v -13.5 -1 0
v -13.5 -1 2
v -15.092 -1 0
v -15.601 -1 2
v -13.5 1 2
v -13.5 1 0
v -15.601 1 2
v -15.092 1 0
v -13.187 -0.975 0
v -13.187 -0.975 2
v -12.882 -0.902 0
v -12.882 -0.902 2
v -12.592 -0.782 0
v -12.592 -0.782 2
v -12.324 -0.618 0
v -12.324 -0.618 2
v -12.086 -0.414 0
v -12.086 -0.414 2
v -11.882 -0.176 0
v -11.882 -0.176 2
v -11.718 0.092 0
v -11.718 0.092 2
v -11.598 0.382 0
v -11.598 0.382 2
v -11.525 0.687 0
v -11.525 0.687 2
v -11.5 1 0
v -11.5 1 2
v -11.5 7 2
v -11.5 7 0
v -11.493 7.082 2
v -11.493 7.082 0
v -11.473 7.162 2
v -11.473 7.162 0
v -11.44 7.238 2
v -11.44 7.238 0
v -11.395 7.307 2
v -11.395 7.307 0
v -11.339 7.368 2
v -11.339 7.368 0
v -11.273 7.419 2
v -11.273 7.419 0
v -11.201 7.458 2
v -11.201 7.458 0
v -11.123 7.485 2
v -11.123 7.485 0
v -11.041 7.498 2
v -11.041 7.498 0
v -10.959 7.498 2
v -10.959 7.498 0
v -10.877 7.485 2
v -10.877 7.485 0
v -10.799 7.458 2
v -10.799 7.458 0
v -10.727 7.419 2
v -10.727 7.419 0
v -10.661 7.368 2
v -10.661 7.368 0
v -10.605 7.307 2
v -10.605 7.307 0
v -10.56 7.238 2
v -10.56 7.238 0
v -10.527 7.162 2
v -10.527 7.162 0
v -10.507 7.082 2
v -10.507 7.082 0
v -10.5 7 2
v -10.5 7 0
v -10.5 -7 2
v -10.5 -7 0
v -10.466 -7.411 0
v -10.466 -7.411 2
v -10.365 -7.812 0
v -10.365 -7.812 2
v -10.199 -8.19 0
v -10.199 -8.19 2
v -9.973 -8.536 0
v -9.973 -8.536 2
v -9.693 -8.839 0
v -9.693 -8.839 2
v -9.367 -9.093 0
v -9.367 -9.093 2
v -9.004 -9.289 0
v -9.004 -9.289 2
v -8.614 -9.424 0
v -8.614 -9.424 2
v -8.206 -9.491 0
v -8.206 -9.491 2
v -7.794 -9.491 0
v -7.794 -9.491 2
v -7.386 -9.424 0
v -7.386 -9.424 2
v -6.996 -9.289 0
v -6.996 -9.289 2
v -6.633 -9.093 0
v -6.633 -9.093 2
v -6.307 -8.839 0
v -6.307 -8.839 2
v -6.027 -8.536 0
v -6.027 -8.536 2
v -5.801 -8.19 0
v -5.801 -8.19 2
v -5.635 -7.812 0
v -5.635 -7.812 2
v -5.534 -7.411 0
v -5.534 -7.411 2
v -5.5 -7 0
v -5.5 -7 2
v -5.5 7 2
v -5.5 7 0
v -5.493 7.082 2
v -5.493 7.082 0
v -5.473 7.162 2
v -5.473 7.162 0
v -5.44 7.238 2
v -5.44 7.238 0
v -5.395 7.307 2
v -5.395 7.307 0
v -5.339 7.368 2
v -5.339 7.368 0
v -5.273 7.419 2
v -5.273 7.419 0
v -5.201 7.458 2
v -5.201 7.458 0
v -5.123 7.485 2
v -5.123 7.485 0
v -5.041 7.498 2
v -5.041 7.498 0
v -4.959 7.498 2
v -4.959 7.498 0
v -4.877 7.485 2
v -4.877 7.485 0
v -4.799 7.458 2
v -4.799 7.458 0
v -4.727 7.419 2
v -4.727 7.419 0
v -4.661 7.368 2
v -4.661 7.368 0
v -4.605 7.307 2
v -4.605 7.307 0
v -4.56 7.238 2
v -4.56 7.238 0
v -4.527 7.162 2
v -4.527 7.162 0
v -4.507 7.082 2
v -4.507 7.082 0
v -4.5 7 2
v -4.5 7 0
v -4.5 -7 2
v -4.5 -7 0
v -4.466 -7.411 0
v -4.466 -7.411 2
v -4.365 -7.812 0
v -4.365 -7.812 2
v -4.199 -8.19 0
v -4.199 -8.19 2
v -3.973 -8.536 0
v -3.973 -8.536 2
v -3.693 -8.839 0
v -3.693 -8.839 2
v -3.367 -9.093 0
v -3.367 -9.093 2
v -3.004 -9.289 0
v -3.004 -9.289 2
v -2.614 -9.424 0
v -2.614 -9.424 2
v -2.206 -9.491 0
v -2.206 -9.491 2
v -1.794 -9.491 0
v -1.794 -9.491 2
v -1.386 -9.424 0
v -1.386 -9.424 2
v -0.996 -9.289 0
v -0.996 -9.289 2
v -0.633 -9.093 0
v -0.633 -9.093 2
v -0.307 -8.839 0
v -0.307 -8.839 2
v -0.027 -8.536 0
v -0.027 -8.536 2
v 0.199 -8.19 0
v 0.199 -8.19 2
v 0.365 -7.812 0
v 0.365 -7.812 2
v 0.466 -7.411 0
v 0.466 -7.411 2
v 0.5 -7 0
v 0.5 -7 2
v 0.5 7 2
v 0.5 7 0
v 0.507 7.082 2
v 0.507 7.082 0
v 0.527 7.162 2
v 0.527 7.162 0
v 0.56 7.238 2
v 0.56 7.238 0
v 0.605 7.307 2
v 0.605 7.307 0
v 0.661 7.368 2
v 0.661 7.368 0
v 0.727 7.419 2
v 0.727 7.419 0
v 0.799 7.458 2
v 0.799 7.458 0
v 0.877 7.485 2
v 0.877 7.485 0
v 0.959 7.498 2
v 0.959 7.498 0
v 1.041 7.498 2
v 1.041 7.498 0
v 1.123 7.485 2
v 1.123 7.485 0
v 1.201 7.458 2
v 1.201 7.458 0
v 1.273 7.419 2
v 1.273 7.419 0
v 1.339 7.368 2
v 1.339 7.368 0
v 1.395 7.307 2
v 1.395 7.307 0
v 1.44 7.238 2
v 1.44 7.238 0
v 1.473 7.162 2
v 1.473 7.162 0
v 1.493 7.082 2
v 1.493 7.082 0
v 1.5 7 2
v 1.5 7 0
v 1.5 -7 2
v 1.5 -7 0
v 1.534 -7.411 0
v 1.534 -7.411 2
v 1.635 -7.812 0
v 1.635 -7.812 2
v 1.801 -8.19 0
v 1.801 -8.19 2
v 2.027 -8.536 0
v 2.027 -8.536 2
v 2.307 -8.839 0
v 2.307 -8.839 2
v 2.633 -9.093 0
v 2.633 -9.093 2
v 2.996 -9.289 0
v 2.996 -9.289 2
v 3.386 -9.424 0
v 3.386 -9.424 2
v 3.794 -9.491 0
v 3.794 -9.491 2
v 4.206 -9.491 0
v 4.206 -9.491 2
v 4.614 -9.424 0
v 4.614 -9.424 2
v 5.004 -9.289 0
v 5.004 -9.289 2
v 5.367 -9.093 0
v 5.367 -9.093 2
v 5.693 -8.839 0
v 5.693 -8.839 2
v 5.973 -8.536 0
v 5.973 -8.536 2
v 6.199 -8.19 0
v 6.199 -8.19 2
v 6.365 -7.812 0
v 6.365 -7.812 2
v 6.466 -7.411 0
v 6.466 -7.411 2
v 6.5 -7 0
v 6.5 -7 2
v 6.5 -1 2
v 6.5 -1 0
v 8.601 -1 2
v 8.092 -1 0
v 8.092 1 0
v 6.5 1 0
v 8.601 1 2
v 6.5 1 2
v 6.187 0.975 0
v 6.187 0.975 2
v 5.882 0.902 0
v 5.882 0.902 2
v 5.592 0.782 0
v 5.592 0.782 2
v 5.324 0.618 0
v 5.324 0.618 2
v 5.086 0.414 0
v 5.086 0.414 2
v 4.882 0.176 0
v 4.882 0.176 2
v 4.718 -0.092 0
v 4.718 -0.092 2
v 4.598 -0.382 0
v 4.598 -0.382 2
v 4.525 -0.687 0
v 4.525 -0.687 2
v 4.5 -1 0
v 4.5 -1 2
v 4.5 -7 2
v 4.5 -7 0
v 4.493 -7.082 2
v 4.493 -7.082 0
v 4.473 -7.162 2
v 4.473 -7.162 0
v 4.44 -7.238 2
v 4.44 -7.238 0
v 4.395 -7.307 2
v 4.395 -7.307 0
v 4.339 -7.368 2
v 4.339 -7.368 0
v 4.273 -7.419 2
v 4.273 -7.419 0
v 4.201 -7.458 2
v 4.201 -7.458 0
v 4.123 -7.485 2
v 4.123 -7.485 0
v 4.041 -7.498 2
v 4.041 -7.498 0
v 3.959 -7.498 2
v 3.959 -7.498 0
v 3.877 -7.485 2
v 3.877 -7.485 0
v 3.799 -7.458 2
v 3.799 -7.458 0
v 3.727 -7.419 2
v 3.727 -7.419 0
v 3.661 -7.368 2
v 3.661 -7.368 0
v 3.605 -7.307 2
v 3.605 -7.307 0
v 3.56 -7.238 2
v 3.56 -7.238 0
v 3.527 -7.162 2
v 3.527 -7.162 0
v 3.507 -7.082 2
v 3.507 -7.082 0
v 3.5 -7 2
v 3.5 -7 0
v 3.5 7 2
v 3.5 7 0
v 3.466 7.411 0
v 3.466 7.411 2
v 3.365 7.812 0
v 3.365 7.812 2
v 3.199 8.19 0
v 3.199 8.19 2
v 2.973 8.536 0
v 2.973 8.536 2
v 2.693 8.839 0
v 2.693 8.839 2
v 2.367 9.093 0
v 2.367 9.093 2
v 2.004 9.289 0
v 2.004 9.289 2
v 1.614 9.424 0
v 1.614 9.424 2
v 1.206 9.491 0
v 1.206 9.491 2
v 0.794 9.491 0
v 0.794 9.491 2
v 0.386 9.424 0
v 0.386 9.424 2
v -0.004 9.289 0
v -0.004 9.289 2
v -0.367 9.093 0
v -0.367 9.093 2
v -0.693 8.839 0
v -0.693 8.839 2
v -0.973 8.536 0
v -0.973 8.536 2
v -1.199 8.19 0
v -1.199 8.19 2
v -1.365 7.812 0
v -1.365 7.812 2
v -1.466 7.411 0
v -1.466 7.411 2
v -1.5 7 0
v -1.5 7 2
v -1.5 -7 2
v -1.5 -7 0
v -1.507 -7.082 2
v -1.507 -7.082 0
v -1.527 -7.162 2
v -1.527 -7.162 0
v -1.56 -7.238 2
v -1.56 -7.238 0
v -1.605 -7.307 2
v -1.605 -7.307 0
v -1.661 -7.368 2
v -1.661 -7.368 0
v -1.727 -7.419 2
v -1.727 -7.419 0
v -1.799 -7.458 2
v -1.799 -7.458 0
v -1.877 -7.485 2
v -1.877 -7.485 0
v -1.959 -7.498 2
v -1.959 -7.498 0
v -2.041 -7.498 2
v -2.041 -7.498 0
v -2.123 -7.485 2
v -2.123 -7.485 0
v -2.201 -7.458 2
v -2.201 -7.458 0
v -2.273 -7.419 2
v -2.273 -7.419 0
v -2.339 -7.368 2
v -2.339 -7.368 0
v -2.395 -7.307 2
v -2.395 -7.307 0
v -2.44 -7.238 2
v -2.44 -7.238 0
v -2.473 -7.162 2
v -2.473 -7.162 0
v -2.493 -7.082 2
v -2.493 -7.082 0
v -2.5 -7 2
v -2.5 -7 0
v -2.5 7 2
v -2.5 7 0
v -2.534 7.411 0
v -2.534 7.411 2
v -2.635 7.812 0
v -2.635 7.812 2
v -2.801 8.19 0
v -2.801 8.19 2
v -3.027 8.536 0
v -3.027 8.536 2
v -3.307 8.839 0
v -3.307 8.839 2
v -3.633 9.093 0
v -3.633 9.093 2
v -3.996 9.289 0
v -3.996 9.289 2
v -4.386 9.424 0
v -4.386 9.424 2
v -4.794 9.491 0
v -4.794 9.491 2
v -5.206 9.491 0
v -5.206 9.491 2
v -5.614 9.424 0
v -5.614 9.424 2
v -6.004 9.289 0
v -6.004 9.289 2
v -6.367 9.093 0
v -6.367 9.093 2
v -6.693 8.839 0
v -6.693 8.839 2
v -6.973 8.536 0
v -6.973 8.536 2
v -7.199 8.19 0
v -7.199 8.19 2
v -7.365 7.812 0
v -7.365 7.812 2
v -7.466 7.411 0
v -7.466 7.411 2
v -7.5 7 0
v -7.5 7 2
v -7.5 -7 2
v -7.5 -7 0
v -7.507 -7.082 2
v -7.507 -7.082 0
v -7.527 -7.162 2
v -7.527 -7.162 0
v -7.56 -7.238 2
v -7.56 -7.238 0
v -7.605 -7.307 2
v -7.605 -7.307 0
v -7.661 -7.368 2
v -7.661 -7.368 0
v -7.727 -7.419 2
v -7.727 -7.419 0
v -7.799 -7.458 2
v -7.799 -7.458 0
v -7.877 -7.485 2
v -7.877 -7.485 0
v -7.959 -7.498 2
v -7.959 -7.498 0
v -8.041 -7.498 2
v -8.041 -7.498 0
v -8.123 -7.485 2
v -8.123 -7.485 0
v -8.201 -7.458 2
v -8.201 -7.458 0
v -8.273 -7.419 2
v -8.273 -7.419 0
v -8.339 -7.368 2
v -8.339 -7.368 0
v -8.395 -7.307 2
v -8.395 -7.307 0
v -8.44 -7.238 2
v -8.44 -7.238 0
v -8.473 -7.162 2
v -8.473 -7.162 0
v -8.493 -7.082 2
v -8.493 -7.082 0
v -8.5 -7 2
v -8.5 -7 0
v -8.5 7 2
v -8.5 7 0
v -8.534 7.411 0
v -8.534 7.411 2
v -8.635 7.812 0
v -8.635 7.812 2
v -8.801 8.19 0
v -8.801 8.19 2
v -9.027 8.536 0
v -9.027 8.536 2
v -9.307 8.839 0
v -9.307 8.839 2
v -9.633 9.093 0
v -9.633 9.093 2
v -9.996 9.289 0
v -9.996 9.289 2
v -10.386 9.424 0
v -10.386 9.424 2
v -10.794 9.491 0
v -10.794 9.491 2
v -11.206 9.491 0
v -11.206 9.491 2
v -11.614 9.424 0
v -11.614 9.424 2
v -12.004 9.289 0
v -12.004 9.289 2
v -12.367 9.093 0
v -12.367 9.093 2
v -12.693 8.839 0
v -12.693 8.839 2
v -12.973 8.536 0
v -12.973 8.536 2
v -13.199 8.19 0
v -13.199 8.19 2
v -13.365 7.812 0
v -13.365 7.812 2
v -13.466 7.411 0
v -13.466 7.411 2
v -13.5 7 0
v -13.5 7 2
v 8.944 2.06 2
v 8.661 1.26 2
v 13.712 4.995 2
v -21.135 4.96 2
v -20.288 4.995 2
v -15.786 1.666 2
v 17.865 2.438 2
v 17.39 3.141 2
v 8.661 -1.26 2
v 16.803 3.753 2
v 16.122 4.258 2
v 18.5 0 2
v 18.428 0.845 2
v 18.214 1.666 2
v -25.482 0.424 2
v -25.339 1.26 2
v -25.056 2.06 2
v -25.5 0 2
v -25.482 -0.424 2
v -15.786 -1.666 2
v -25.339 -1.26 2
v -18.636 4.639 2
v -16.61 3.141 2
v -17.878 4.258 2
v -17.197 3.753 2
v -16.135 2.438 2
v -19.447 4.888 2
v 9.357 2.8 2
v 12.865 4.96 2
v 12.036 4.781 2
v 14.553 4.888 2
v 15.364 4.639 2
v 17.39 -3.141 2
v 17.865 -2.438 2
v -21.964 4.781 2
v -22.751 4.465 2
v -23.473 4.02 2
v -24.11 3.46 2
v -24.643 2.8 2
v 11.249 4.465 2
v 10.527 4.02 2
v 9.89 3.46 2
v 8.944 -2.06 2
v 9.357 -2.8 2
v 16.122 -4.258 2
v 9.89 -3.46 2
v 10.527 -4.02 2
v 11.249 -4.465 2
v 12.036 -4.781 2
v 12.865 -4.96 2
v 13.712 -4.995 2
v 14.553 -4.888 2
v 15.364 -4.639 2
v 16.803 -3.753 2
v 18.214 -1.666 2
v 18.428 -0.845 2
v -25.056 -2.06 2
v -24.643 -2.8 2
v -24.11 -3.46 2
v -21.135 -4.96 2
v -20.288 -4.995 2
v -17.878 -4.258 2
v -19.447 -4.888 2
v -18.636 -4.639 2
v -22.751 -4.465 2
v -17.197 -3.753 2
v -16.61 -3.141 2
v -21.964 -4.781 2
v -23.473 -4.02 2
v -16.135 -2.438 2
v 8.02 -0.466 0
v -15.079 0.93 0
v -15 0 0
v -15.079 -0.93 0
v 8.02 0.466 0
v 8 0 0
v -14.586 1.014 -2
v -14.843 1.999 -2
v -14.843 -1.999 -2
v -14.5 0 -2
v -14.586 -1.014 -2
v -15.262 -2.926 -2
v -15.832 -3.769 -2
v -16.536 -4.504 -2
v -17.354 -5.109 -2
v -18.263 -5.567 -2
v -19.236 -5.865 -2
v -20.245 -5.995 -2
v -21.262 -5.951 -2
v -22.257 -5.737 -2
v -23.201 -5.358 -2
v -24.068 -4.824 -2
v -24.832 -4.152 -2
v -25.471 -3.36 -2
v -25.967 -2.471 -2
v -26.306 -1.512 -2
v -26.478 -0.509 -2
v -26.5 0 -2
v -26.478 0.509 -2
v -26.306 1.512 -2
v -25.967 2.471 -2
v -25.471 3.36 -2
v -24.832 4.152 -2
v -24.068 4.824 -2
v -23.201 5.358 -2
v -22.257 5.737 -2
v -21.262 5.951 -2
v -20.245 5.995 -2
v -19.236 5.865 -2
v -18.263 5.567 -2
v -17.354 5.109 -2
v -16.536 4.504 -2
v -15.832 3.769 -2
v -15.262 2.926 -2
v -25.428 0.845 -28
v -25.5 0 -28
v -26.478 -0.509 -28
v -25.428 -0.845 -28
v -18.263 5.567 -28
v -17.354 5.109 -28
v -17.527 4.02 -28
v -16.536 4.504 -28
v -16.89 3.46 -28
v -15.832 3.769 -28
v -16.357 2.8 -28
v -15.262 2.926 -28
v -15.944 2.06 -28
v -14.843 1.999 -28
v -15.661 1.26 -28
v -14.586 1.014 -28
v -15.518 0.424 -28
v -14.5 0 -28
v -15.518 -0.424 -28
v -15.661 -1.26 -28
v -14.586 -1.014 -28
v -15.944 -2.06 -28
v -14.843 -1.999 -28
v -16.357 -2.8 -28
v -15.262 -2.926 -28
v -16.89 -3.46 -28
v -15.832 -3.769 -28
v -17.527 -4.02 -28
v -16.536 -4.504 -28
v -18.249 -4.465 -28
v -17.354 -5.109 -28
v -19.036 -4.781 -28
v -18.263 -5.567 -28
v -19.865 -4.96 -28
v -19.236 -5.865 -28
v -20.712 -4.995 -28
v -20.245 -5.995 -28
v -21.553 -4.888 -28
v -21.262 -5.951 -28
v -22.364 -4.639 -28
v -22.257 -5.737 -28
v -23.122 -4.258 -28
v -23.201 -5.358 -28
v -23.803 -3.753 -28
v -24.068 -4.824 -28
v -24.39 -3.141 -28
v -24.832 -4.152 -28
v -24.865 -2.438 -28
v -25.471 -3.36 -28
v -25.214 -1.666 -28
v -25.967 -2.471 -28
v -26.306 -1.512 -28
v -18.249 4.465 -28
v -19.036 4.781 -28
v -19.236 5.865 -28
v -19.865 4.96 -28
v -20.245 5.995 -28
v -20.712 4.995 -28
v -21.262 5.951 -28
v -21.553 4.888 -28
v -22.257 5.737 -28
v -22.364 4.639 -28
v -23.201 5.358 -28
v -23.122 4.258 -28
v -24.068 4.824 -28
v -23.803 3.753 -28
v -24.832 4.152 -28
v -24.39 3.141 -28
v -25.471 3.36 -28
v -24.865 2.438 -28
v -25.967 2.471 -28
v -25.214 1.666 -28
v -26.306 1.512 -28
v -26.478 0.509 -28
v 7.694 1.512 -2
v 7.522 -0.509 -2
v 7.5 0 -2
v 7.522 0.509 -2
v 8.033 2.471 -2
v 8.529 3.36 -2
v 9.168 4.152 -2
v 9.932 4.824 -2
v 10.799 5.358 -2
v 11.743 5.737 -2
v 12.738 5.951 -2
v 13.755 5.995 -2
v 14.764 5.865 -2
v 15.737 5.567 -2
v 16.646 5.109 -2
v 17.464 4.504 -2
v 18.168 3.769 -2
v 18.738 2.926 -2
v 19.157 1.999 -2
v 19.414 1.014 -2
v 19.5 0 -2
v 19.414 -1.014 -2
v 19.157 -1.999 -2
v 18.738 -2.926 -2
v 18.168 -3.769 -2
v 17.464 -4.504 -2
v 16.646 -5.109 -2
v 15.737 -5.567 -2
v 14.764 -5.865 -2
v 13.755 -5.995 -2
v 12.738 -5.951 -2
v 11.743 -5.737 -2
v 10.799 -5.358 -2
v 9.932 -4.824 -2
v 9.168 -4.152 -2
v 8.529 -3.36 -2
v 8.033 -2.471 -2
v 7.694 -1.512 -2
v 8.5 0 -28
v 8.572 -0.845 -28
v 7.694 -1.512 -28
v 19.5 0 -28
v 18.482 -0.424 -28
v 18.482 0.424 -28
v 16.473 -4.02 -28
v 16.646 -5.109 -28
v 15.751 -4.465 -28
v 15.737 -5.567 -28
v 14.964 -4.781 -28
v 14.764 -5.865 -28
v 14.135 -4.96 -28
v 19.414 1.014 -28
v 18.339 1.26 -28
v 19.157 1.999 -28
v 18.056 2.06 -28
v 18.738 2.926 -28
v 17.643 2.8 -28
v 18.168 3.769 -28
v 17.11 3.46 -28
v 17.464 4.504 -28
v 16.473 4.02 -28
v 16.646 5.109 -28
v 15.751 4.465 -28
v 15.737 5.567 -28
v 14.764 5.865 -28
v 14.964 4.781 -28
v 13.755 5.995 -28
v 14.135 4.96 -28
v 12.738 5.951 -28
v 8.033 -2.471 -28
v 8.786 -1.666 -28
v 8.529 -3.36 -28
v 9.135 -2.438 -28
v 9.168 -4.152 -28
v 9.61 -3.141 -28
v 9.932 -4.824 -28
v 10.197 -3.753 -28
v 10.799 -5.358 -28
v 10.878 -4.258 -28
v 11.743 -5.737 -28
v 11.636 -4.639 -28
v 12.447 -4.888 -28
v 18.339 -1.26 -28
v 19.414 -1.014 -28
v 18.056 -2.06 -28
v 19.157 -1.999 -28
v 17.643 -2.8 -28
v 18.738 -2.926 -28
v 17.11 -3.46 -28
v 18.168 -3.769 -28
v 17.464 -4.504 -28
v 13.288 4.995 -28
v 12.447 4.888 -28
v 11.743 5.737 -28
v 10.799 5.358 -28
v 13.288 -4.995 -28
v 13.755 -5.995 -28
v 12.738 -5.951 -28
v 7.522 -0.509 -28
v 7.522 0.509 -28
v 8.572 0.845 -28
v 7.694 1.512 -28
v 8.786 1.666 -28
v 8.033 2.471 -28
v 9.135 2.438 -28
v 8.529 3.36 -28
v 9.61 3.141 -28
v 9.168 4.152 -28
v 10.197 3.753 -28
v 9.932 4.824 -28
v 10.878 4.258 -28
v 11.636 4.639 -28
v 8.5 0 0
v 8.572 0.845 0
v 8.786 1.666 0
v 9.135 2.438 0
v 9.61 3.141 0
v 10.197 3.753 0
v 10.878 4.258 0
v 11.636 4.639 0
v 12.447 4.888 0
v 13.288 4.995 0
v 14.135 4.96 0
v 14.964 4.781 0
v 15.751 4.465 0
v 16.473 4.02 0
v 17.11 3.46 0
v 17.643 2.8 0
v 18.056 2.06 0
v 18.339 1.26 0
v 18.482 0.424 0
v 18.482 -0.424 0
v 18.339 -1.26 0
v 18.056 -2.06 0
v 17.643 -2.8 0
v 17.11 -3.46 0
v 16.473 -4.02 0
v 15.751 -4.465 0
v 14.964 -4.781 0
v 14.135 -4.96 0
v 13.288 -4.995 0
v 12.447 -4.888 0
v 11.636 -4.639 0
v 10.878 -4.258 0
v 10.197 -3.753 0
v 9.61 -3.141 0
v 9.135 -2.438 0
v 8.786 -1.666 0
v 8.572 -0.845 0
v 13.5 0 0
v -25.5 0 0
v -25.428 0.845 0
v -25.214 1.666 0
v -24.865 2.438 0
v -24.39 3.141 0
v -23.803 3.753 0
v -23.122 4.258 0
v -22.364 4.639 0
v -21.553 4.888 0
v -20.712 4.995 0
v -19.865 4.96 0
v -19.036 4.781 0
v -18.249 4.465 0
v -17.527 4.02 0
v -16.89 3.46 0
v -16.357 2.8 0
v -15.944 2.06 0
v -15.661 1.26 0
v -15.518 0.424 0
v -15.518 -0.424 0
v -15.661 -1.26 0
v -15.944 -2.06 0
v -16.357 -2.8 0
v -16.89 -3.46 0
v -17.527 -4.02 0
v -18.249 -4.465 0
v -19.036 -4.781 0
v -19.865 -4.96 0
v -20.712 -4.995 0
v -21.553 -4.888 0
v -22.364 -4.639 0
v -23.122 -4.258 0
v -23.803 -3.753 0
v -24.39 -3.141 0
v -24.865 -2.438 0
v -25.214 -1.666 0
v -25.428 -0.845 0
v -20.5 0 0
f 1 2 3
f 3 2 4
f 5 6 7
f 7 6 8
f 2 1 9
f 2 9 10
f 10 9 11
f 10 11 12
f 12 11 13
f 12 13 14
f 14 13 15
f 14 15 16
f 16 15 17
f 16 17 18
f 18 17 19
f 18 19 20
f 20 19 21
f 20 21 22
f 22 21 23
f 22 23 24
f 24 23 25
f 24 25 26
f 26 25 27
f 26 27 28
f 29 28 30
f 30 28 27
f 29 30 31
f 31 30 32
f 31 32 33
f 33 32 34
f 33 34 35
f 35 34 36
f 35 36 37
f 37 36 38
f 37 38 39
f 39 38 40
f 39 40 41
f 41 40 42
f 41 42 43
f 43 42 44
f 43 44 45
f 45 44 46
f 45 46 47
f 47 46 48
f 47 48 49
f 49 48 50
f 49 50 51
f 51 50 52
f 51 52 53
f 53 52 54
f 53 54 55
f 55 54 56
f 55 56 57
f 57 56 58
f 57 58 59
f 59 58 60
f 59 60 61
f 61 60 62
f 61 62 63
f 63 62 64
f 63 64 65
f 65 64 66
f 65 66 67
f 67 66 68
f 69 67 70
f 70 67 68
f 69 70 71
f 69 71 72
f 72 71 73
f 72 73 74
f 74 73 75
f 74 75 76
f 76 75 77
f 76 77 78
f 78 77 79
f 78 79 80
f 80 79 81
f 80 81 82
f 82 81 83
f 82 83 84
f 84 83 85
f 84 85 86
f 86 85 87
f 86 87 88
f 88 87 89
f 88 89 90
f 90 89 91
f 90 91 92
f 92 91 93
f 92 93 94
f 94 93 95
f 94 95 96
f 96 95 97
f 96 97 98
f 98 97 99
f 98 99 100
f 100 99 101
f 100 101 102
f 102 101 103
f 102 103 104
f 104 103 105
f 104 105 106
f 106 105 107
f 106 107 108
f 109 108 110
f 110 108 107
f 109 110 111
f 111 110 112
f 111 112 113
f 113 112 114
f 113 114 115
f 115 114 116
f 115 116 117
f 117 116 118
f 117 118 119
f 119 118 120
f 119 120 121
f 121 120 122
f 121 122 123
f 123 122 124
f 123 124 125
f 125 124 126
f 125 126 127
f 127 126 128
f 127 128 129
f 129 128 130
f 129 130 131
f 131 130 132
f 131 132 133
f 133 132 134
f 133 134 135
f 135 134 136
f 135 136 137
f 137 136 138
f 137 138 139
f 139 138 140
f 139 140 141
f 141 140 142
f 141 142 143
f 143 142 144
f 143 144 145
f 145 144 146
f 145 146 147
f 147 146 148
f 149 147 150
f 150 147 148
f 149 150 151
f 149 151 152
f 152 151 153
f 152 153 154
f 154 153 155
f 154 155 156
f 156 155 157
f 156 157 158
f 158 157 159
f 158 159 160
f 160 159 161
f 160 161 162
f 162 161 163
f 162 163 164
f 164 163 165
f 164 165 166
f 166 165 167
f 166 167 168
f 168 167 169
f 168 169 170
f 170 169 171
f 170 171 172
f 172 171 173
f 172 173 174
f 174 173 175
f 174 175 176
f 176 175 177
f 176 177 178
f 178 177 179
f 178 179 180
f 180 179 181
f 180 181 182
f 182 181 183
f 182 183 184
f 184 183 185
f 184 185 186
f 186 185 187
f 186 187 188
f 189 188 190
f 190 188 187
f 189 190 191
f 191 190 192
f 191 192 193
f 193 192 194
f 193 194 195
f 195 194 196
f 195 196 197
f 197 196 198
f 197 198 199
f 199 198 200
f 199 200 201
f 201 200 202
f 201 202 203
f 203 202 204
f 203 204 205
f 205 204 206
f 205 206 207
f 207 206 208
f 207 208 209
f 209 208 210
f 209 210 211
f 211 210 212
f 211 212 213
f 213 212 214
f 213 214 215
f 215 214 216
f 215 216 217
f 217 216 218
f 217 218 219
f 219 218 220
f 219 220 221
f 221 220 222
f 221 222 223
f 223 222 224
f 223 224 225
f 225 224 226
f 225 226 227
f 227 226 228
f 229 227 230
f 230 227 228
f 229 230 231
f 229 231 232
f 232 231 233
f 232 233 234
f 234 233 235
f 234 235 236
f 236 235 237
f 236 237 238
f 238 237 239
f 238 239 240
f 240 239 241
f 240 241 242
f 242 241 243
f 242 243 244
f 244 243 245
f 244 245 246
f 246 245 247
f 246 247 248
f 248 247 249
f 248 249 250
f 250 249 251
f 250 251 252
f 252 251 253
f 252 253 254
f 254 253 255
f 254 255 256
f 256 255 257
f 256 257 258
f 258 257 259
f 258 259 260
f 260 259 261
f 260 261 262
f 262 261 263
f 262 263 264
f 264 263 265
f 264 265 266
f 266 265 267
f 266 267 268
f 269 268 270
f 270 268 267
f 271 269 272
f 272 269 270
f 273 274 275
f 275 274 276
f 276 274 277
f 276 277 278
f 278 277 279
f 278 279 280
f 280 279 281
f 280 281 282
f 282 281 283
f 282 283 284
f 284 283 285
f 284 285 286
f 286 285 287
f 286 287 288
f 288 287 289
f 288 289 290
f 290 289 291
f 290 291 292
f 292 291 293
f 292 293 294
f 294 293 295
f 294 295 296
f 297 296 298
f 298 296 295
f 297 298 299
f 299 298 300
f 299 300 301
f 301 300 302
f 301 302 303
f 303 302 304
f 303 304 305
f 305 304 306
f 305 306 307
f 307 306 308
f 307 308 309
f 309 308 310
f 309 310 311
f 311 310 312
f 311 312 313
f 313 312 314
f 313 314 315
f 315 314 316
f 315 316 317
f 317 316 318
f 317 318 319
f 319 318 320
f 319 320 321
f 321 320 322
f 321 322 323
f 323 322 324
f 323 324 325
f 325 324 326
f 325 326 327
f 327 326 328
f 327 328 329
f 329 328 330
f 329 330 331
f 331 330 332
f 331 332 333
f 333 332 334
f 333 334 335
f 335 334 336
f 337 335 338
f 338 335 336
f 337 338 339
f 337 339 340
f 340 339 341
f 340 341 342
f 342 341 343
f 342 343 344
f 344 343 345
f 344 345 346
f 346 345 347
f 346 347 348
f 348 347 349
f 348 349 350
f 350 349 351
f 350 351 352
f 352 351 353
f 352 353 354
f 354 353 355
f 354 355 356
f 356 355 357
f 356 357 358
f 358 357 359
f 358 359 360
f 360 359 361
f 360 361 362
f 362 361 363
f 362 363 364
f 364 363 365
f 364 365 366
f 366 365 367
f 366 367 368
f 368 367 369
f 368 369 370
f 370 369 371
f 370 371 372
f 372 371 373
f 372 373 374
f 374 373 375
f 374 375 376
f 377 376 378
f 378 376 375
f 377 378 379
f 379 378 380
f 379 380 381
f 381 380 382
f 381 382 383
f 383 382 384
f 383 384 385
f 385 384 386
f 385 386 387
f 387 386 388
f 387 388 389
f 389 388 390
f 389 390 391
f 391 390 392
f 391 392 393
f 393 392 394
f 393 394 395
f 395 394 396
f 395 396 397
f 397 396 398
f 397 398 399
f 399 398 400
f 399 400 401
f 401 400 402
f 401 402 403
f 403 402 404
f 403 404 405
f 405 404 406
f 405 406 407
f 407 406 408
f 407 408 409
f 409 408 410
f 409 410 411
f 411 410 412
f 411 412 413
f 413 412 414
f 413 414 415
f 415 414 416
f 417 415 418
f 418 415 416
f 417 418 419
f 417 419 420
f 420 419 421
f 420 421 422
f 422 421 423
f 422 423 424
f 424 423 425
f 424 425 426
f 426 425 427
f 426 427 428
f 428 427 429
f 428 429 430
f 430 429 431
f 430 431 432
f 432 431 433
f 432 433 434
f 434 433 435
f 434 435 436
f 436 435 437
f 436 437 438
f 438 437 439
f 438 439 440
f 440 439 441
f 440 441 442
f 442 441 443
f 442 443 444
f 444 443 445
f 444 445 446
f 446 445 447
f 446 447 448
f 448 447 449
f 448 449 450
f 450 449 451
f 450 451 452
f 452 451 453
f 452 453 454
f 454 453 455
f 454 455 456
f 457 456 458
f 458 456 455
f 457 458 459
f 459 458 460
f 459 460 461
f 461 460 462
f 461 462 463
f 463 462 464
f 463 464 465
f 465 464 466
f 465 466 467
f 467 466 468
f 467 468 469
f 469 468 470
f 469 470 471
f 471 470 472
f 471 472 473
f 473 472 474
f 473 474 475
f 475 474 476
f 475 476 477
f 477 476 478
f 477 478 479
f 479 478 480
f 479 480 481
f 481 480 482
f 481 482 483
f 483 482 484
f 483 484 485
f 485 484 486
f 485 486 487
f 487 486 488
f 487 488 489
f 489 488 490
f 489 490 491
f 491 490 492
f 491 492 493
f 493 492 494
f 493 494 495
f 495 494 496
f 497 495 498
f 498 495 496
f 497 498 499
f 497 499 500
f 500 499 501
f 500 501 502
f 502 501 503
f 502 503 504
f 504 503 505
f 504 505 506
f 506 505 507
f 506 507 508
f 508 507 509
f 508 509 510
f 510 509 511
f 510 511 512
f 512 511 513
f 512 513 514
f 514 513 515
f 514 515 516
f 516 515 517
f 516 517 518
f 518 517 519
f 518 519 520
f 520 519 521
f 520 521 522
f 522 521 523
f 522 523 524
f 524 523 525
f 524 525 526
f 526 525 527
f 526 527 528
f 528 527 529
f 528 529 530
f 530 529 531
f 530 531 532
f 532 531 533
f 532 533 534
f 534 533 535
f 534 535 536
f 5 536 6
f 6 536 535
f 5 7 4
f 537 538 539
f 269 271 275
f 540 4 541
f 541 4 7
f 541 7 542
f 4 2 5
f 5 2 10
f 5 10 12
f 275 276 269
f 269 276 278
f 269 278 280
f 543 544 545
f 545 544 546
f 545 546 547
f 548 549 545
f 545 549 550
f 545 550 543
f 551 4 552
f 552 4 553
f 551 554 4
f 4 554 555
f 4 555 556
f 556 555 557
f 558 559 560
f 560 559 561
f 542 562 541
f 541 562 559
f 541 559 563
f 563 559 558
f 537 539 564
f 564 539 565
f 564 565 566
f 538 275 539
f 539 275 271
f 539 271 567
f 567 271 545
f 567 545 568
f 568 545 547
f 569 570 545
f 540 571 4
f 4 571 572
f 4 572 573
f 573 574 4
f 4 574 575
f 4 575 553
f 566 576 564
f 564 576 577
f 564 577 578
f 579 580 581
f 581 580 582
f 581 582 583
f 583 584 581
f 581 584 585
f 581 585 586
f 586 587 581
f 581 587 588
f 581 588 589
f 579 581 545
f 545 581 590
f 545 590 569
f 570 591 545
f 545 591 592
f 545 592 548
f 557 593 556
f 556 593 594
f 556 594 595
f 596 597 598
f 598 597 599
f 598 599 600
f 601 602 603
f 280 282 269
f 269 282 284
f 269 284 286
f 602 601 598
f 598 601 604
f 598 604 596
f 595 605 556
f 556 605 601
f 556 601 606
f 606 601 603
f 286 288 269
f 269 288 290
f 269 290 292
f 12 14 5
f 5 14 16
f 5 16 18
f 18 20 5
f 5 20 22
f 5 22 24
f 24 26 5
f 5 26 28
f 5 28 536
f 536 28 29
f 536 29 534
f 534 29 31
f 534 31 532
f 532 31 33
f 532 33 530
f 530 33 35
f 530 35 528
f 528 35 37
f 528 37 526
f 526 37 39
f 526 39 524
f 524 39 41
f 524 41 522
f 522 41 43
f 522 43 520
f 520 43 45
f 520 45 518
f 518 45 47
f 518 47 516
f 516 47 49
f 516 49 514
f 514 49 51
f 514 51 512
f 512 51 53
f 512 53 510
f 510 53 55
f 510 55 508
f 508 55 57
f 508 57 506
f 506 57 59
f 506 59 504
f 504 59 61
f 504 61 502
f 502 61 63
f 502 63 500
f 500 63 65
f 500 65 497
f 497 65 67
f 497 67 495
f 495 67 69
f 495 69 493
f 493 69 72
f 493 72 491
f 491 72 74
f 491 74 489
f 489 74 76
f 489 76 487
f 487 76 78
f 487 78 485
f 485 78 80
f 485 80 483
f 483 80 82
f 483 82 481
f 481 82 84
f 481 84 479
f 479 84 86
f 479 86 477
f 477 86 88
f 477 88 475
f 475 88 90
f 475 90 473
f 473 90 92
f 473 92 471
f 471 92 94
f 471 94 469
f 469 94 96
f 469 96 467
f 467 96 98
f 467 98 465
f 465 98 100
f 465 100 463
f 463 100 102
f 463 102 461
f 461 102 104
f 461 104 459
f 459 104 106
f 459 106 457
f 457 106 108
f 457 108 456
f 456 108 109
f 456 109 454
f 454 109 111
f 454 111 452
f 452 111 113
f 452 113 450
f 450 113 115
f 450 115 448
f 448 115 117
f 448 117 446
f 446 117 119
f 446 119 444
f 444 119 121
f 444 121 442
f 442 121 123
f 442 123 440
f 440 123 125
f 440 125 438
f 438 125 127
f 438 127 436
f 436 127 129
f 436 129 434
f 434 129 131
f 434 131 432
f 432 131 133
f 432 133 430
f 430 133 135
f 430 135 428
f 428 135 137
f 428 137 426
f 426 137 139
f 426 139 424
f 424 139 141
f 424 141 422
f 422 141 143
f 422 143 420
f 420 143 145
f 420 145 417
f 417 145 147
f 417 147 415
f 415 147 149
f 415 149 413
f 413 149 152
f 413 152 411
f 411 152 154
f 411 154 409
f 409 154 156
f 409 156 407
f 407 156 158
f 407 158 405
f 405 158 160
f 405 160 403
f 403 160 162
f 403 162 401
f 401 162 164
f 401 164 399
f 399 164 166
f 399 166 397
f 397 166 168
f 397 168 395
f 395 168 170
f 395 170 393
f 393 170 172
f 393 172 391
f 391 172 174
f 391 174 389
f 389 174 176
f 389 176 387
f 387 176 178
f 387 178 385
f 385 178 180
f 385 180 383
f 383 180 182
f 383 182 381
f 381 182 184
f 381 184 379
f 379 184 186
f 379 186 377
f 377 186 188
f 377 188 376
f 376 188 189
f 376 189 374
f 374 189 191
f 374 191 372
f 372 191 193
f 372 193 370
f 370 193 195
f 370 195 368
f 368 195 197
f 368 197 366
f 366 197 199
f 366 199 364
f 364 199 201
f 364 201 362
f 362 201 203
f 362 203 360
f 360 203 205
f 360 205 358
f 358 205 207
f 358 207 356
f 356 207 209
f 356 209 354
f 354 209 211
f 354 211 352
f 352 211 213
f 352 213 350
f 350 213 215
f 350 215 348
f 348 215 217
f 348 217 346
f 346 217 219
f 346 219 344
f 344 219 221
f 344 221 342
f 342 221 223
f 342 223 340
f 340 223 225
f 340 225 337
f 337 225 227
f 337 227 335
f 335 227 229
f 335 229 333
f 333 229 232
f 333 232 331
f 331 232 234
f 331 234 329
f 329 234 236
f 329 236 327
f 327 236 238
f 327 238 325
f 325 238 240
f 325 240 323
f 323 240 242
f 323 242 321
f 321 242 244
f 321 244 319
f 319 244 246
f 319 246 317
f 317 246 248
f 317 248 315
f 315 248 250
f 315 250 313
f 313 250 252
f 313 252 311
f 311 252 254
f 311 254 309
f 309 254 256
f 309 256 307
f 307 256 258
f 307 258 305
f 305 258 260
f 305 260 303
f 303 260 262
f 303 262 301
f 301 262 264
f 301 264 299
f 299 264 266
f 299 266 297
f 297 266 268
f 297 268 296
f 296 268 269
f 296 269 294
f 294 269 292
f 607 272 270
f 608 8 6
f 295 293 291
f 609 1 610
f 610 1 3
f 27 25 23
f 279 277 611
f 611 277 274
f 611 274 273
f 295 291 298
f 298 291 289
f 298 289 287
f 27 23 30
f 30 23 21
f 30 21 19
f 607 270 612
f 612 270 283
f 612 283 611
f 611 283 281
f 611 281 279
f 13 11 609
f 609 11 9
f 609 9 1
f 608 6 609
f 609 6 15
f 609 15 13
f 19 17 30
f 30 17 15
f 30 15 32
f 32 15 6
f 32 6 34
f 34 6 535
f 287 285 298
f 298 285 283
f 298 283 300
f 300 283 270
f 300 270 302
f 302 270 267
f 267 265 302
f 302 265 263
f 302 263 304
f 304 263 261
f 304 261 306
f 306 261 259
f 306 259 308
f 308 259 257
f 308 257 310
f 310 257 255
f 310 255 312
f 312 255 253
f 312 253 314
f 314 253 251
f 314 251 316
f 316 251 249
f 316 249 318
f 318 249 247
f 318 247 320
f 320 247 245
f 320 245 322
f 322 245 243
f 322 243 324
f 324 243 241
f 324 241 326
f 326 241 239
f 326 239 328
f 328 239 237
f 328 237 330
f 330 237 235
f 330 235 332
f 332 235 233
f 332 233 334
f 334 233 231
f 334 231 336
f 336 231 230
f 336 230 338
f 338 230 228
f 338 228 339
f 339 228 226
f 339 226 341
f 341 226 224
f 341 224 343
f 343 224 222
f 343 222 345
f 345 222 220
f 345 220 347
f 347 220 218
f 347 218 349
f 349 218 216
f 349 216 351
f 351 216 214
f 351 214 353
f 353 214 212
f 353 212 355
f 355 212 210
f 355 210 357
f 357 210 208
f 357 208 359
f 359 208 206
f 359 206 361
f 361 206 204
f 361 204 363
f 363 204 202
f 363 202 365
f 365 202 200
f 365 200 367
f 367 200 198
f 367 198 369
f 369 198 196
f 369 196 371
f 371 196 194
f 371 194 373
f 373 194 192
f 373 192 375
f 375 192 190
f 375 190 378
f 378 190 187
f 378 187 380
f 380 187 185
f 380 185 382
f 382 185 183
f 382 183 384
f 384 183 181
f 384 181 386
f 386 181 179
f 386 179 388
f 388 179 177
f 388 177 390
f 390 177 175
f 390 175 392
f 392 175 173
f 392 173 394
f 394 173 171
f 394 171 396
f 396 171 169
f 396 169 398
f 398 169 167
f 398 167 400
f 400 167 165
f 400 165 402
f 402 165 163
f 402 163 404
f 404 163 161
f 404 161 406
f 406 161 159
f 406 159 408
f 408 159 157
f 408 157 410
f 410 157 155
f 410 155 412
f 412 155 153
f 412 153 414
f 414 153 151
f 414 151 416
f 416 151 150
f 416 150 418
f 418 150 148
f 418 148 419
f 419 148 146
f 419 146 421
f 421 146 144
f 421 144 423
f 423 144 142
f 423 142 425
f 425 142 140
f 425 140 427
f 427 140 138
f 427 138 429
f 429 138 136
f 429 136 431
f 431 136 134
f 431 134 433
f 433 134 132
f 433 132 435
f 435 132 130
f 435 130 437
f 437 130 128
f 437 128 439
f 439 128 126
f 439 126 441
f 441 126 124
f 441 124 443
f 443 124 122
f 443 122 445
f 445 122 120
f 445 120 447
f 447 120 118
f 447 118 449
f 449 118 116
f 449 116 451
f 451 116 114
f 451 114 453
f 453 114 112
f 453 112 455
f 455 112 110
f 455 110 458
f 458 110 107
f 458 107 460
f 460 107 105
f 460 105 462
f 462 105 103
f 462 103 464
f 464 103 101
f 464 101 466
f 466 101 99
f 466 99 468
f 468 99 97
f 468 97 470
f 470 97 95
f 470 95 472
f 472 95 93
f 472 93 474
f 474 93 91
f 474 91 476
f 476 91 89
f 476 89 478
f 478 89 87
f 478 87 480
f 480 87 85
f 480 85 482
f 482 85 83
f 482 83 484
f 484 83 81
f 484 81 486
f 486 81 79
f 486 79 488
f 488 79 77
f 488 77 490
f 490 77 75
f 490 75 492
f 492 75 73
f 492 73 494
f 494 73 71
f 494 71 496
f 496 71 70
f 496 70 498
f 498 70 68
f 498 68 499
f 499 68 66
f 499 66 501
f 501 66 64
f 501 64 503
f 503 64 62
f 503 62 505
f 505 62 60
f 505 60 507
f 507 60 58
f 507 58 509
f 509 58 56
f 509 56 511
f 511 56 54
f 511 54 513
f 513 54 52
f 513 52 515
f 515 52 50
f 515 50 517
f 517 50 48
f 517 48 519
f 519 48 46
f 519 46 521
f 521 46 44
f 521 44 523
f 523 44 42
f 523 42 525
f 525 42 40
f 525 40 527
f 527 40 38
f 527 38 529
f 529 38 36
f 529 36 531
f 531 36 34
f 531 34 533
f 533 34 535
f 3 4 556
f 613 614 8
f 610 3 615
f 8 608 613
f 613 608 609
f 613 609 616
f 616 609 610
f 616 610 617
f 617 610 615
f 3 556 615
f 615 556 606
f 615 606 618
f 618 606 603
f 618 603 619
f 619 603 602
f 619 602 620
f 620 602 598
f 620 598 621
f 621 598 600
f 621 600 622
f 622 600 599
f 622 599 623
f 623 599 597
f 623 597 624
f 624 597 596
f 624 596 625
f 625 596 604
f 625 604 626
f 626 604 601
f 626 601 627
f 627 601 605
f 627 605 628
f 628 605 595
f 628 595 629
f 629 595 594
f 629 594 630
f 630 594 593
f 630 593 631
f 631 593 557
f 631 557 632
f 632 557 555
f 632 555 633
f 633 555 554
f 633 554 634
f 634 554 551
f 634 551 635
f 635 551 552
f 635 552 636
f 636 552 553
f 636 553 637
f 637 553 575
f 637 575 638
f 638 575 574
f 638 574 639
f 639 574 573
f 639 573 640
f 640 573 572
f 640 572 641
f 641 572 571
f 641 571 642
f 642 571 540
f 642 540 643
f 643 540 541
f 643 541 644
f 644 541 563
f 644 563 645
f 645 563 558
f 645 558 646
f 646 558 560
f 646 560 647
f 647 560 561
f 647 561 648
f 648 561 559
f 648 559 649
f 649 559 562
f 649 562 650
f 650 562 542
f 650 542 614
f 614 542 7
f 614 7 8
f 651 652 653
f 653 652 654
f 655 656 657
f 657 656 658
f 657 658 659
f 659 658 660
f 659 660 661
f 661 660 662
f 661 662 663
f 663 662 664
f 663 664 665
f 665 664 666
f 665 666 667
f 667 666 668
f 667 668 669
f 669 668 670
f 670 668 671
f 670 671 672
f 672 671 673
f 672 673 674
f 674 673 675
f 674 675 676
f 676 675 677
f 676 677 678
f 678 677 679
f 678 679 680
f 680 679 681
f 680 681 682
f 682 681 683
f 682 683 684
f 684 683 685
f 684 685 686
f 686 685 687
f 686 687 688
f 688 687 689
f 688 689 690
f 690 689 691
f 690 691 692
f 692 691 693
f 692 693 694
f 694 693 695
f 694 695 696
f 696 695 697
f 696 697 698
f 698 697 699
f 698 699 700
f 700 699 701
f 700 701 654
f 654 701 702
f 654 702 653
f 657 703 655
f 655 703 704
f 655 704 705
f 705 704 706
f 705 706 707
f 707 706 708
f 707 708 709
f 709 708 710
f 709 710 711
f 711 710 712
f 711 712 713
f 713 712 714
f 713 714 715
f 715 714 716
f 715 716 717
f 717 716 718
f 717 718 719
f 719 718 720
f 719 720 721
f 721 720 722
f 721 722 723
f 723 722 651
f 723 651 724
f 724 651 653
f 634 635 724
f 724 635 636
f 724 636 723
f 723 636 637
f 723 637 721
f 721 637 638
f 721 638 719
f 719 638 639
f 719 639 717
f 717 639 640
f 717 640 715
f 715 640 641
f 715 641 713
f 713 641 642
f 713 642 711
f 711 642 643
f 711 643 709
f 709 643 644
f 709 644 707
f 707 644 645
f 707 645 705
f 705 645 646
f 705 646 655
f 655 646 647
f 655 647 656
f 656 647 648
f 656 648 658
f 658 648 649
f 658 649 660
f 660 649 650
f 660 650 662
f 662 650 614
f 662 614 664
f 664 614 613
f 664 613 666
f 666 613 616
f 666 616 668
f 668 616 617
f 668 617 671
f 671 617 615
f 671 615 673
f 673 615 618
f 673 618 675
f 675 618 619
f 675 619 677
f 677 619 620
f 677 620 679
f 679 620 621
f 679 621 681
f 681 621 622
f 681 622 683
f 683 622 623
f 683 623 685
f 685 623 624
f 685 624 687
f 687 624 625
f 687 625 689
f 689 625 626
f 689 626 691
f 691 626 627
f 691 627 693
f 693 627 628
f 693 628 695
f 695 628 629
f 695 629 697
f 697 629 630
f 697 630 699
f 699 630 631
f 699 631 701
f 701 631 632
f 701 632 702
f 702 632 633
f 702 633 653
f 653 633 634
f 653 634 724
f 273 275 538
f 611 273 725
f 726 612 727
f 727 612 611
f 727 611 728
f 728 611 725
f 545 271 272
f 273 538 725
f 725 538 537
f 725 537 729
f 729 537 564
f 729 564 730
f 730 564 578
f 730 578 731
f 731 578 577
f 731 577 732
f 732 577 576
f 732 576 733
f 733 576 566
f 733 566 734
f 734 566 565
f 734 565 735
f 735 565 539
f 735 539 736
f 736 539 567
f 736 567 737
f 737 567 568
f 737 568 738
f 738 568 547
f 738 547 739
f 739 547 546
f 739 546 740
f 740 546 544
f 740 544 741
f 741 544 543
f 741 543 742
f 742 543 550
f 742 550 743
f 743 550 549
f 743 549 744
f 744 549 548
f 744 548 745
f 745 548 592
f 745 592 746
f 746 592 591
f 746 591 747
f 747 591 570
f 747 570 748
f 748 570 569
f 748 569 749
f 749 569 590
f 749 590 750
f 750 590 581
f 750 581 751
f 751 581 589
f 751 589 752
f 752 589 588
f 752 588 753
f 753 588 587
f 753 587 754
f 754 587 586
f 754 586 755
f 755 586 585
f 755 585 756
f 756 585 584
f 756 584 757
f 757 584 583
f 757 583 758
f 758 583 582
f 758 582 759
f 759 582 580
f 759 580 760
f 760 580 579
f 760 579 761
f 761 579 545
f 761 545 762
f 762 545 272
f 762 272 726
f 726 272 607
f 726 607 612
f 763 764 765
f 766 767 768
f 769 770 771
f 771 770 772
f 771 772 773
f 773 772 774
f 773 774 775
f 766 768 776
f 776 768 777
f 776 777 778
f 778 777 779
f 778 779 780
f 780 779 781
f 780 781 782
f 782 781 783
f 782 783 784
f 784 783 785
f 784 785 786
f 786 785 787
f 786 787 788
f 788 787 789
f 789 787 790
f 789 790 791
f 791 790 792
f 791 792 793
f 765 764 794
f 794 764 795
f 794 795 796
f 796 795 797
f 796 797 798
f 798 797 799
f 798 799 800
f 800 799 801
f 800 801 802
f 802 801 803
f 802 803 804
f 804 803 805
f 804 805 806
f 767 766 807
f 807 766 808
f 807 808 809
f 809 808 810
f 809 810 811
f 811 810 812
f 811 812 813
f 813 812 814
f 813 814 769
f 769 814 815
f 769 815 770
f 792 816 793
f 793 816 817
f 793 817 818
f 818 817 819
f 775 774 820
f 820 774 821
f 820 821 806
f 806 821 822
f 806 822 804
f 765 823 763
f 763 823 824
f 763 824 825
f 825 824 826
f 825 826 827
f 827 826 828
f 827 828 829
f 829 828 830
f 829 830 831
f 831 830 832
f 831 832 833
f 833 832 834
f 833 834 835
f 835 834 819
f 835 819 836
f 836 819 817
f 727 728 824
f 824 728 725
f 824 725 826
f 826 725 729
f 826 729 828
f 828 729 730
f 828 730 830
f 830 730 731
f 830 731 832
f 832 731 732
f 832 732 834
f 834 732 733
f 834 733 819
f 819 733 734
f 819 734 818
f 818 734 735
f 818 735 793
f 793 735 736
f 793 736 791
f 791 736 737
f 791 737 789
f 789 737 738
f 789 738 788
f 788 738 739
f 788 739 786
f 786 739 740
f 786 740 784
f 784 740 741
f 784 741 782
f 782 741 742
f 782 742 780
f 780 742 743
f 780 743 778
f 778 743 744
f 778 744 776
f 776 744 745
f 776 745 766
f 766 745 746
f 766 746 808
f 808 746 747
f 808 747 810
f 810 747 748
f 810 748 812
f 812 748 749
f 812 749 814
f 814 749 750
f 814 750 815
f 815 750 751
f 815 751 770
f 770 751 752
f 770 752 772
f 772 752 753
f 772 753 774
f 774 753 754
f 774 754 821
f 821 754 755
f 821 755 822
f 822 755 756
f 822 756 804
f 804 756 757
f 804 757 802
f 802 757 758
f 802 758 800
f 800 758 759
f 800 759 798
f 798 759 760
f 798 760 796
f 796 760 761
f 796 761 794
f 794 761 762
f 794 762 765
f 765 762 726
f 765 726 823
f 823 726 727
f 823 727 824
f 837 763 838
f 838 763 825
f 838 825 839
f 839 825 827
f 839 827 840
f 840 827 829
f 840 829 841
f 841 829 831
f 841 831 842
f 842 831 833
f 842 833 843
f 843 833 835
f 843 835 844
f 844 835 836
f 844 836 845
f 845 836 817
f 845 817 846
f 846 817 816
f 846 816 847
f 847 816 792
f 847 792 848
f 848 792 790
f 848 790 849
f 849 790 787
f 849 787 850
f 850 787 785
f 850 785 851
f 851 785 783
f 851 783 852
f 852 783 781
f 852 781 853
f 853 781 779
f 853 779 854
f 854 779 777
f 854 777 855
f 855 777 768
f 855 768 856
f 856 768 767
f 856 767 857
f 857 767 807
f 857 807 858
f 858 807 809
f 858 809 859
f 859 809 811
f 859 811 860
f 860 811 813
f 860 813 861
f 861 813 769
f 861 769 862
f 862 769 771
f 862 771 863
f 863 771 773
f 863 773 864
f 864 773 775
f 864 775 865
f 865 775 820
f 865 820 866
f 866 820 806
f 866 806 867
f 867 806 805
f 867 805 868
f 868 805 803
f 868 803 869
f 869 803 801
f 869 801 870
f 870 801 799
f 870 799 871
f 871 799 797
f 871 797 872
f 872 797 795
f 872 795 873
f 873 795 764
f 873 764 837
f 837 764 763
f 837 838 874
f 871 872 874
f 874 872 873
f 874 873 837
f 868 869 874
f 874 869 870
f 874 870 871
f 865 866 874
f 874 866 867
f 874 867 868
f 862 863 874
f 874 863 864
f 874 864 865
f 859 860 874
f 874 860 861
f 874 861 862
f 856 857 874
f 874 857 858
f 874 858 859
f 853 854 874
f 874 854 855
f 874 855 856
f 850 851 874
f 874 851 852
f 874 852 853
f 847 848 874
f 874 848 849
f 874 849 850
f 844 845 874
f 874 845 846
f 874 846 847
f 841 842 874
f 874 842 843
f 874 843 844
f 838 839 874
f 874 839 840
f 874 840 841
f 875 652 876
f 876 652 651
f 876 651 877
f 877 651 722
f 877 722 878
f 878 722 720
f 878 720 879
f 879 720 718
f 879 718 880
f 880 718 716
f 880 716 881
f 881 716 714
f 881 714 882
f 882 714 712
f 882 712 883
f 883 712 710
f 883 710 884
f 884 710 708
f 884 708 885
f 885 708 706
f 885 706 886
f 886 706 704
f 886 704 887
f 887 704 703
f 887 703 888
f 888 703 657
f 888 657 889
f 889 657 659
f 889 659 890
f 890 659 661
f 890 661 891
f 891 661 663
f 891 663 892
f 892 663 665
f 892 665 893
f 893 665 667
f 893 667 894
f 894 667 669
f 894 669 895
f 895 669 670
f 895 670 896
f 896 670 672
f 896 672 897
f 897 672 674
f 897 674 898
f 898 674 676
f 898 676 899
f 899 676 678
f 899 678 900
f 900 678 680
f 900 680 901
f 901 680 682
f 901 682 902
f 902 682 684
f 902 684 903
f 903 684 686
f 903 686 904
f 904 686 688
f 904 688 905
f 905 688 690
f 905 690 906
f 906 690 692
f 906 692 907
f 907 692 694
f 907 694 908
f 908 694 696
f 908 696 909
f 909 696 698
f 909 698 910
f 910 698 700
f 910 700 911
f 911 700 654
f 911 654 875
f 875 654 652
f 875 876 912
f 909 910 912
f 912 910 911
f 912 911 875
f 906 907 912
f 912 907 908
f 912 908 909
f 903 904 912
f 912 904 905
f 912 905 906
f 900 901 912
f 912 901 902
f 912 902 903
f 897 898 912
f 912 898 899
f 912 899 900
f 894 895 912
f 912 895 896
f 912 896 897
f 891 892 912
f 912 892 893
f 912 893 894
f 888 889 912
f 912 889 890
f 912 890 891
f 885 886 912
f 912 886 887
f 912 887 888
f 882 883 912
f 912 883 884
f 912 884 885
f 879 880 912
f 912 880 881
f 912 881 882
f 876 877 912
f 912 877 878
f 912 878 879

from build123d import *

# Parameters (mm, degrees)
BOSS_EXTRUDE1_DEPTH = 2
SKETCH5_R           = 5
CUT_EXTRUDE1_DEPTH  = 28


with BuildPart() as part:
    # Sketch2 → Boss-Extrude1 (new body)
    with BuildSketch(Plane.XY):
        with BuildLine():
            Line((-20.5, -1), (-13.5, -1))
            ThreePointArc((-13.5, -1), (-12.085786438, -0.414213562), (-11.5, 1))
            Line((-11.5, 1), (-11.5, 7))
            ThreePointArc((-11.5, 7), (-11, 7.5), (-10.5, 7))
            Line((-10.5, 7), (-10.5, 0))
            Line((-10.5, 0), (-10.5, -7))
            ThreePointArc((-10.5, -7), (-8, -9.5), (-5.5, -7))
            Line((-5.5, -7), (-5.5, 0))
            Line((-5.5, 0), (-5.5, 7))
            ThreePointArc((-5.5, 7), (-5, 7.5), (-4.5, 7))
            Line((-4.5, 7), (-4.5, 0))
            Line((-4.5, 0), (-4.5, -7))
            ThreePointArc((-4.5, -7), (-2, -9.5), (0.5, -7))
            Line((0.5, -7), (0.5, 0))
            Line((0.5, 0), (0.5, 7))
            ThreePointArc((0.5, 7), (1, 7.5), (1.5, 7))
            Line((1.5, 7), (1.5, 0))
            Line((1.5, 0), (1.5, -7))
            ThreePointArc((1.5, -7), (4, -9.5), (6.5, -7))
            Line((6.5, -7), (6.5, -1))
            Line((6.5, -1), (13.5, -1))
            ThreePointArc((13.5, -1), (14.5, 0), (13.5, 1))
            Line((13.5, 1), (6.5, 1))
            ThreePointArc((6.5, 1), (5.085786438, 0.414213562), (4.5, -1))
            Line((4.5, -1), (4.5, -7))
            ThreePointArc((4.5, -7), (4, -7.5), (3.5, -7))
            Line((3.5, -7), (3.5, 0))
            Line((3.5, 0), (3.5, 7))
            ThreePointArc((3.5, 7), (1, 9.5), (-1.5, 7))
            Line((-1.5, 7), (-1.5, 0))
            Line((-1.5, 0), (-1.5, -7))
            ThreePointArc((-1.5, -7), (-2, -7.5), (-2.5, -7))
            Line((-2.5, -7), (-2.5, 0))
            Line((-2.5, 0), (-2.5, 7))
            ThreePointArc((-2.5, 7), (-5, 9.5), (-7.5, 7))
            Line((-7.5, 7), (-7.5, 0))
            Line((-7.5, 0), (-7.5, -7))
            ThreePointArc((-7.5, -7), (-8, -7.5), (-8.5, -7))
            Line((-8.5, -7), (-8.5, 0))
            Line((-8.5, 0), (-8.5, 7))
            ThreePointArc((-8.5, 7), (-11, 9.5), (-13.5, 7))
            Line((-13.5, 7), (-13.5, 1))
            Line((-13.5, 1), (-20.5, 1))
            ThreePointArc((-20.5, 1), (-21.5, 0), (-20.5, -1))
        make_face()
    extrude(amount=BOSS_EXTRUDE1_DEPTH)

    # Sketch3 → Revolve1 (revolve)
    with BuildSketch(Plane(origin=(0, 0, 0), x_dir=(1, 0, 0), z_dir=(0, 1, 0)), mode=Mode.PRIVATE) as revolve1_sk:
        Polygon((-20.5, -2), (-25.5, -2), (-26.5, 2), (-26.5, 28), (-20.5, 28), align=None)
    revolve(revolve1_sk.sketch.rotate(Axis((-20.5, 0, 2), (0, 0, -1)), 168.463040967), axis=Axis((-20.5, 0, 2), (0, 0, -1)))

    # Sketch4 → Revolve2 (revolve)
    with BuildSketch(Plane(origin=(0, 0, 0), x_dir=(1, 0, 0), z_dir=(0, 1, 0)), mode=Mode.PRIVATE) as revolve2_sk:
        Polygon((13.5, -2), (18.5, -2), (19.5, 2), (19.5, 28), (13.5, 28), align=None)
    revolve(revolve2_sk.sketch.rotate(Axis((13.5, 0, 2), (0, 0, -1)), 169.524319524), axis=Axis((13.5, 0, 2), (0, 0, -1)))

    # Sketch5 → Cut-Extrude1 (cut)
    with BuildSketch(Plane(origin=(0, 0, -28), x_dir=(-1, 0, 0), z_dir=(0, 0, -1))):
        with Locations((-13.5, 0)):
            Circle(SKETCH5_R)
        with Locations((20.5, 0)):
            Circle(SKETCH5_R)
    extrude(amount=-CUT_EXTRUDE1_DEPTH, mode=Mode.SUBTRACT)


solid = part.part
